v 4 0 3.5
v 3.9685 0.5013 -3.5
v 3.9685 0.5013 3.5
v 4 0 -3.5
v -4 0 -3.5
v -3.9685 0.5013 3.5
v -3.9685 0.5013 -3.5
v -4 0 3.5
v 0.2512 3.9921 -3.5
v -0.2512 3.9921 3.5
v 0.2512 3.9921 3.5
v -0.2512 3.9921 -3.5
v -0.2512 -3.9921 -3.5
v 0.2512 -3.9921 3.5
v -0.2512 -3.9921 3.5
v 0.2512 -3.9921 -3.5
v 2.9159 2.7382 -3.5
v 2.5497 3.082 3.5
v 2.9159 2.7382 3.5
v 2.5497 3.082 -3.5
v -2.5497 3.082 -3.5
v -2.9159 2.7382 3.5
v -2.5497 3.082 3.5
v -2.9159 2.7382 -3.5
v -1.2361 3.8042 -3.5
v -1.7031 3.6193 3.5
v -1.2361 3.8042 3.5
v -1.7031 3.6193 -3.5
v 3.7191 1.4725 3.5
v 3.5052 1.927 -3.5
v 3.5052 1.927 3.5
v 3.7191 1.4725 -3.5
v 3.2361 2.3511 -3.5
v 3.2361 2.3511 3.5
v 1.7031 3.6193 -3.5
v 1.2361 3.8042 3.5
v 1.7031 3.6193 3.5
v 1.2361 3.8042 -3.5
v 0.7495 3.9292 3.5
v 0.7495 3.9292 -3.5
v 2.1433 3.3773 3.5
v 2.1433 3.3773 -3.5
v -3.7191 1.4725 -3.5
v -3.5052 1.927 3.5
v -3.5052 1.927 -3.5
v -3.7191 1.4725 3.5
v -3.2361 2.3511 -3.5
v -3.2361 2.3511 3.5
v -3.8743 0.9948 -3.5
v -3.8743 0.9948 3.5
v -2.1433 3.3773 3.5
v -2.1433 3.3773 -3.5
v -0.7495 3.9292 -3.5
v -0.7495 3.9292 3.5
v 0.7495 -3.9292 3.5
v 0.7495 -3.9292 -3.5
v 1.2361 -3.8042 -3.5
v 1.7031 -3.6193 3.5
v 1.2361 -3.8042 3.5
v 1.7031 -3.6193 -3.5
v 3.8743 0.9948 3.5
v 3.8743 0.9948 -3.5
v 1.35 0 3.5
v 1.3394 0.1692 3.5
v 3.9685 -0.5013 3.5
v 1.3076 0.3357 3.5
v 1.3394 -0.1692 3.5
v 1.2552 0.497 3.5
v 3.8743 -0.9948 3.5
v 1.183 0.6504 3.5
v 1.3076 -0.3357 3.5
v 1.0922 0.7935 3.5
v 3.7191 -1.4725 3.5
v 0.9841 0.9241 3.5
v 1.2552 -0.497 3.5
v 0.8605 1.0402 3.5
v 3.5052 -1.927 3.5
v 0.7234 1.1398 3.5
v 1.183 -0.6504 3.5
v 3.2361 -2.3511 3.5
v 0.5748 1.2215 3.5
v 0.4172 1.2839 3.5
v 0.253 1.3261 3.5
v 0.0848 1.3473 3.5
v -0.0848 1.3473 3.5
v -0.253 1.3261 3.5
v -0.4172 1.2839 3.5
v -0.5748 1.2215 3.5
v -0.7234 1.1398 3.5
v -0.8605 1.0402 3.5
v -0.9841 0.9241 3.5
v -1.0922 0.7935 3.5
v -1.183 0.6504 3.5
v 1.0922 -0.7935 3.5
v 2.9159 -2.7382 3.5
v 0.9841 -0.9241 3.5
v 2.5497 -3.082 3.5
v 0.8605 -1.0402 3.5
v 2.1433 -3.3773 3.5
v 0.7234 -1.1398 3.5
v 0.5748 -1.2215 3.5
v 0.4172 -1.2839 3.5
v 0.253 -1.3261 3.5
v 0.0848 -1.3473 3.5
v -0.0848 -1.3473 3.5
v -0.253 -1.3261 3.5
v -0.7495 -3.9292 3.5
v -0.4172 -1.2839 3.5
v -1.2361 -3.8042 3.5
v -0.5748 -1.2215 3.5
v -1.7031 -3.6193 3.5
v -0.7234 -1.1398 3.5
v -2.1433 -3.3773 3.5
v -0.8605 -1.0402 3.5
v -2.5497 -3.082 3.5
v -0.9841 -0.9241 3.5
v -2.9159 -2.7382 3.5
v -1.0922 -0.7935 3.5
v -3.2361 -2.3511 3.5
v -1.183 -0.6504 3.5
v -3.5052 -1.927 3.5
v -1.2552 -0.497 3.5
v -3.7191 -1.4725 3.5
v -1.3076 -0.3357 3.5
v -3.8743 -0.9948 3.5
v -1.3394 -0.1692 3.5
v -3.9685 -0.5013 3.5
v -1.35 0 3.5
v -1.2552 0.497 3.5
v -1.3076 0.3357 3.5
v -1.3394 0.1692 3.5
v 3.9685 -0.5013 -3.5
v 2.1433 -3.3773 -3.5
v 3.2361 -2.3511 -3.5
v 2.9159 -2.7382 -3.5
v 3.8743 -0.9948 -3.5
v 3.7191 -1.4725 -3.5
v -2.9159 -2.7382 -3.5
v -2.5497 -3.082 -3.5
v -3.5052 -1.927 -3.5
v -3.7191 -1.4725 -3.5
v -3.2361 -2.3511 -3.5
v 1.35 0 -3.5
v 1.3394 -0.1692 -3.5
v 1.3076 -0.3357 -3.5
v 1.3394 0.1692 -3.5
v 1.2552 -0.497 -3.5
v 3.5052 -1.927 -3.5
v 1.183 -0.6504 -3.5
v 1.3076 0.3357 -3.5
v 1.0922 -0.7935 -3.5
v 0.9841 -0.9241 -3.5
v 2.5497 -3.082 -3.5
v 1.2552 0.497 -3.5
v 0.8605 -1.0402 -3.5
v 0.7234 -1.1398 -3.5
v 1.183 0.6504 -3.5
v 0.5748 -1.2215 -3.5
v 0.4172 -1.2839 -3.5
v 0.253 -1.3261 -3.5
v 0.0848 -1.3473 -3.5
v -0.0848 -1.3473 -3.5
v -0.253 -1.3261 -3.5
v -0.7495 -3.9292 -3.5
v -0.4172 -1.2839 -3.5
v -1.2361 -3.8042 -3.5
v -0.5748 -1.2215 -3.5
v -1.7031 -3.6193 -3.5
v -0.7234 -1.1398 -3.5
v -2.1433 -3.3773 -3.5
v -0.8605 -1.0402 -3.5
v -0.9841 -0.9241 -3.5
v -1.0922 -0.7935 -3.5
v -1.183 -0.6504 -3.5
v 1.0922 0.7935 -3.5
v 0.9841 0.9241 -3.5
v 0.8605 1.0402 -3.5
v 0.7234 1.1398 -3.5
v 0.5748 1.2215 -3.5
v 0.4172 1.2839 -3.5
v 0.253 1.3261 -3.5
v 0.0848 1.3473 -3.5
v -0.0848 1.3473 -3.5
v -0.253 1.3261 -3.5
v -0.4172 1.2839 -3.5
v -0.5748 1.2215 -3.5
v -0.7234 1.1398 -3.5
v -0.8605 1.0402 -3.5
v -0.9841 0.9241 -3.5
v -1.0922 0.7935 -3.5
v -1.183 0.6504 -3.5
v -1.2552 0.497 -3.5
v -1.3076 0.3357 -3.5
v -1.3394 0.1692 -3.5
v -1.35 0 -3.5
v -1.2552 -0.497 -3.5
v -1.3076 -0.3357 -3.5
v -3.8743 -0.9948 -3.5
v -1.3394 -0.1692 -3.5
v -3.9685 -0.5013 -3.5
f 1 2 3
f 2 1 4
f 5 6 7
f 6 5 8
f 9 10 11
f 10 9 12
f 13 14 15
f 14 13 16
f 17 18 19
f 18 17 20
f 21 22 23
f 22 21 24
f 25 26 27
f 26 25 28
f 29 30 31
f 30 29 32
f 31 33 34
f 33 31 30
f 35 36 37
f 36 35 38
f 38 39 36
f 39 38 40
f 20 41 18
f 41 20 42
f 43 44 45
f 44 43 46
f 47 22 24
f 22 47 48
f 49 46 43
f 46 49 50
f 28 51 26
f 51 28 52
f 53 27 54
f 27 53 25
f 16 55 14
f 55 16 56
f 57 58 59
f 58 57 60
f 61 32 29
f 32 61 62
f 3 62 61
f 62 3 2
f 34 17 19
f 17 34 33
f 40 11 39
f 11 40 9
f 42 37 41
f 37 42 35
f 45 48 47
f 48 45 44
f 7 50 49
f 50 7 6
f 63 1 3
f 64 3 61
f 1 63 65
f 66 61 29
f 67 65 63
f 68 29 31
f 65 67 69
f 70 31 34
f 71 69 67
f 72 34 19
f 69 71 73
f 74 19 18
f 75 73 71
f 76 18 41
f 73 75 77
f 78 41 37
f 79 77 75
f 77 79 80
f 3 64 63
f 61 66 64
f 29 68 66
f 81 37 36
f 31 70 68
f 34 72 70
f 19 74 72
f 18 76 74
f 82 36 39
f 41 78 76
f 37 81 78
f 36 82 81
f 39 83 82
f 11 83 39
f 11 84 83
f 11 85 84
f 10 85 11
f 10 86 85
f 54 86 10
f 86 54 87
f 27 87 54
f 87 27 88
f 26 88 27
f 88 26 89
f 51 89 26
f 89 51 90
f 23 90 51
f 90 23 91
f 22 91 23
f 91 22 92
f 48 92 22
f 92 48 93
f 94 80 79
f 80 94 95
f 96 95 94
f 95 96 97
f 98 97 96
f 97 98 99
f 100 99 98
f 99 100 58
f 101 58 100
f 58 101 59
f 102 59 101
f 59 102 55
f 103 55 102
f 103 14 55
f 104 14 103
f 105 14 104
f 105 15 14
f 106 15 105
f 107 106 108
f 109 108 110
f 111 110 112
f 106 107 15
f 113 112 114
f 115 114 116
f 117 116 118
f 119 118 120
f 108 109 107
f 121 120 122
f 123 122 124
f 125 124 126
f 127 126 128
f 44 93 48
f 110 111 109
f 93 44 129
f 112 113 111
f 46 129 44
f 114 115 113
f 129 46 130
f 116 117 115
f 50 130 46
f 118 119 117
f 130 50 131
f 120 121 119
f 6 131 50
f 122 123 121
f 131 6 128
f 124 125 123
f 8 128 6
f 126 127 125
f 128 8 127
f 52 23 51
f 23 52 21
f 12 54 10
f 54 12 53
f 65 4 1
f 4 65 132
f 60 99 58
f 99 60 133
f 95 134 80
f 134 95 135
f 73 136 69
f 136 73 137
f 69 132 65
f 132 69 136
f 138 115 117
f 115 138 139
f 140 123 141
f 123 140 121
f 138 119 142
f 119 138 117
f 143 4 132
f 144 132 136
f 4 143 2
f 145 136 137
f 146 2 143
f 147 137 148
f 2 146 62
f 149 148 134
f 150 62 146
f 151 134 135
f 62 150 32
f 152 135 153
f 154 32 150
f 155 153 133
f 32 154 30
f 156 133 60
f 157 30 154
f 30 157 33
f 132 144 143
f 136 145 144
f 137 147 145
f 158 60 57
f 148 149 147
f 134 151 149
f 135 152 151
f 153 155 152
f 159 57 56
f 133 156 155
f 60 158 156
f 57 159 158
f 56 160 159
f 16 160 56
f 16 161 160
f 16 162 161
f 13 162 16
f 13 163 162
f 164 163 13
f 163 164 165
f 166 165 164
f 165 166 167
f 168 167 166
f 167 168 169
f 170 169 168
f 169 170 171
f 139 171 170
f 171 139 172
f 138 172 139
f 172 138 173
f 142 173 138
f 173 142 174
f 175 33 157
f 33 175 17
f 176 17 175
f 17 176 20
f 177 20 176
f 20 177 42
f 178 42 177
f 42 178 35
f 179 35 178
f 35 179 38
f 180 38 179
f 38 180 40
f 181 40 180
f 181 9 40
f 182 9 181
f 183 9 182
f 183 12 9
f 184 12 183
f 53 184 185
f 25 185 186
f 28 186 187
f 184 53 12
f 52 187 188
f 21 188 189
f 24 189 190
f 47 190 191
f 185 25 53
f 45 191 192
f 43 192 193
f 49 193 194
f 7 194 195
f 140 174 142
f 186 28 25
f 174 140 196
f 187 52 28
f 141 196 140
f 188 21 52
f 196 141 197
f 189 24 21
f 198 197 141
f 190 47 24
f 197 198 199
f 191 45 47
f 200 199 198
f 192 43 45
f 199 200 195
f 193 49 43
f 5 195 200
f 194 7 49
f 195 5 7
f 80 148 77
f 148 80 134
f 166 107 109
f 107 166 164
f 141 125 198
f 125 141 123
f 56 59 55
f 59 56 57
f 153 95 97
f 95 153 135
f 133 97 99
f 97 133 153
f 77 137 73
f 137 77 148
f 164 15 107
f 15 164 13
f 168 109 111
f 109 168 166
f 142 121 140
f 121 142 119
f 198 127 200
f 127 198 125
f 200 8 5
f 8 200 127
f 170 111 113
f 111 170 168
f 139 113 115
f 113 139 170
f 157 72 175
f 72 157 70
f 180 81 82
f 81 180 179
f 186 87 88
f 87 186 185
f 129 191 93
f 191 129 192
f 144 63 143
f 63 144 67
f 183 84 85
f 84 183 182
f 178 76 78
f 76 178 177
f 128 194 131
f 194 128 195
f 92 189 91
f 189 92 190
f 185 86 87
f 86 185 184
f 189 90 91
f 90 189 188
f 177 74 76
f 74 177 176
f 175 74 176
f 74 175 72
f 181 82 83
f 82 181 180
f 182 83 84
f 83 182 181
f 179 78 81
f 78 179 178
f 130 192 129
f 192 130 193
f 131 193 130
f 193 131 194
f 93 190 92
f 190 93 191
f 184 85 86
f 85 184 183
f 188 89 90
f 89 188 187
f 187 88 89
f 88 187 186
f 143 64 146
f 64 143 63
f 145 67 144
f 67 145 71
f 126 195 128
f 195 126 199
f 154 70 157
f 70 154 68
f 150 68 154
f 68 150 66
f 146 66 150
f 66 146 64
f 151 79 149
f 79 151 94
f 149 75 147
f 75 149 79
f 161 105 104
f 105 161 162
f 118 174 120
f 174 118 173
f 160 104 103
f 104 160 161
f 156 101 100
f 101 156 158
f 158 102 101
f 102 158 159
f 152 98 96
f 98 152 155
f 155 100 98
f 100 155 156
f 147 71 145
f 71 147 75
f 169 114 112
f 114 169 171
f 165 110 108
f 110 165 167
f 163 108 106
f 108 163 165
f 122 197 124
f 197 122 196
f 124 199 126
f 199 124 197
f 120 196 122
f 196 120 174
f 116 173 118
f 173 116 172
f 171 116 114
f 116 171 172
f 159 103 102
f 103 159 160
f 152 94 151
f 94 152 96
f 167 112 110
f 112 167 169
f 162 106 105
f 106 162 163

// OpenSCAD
$fn = 50;


difference() {
	union() {
		translate(v = [0, 0, -3.5000000000]) {
			cylinder(h = 7, r = 4.0000000000);
		}
	}
	union() {
		translate(v = [0, 0, -100.0000000000]) {
			cylinder(h = 200, r = 1.3500000000);
		}
	}
}
